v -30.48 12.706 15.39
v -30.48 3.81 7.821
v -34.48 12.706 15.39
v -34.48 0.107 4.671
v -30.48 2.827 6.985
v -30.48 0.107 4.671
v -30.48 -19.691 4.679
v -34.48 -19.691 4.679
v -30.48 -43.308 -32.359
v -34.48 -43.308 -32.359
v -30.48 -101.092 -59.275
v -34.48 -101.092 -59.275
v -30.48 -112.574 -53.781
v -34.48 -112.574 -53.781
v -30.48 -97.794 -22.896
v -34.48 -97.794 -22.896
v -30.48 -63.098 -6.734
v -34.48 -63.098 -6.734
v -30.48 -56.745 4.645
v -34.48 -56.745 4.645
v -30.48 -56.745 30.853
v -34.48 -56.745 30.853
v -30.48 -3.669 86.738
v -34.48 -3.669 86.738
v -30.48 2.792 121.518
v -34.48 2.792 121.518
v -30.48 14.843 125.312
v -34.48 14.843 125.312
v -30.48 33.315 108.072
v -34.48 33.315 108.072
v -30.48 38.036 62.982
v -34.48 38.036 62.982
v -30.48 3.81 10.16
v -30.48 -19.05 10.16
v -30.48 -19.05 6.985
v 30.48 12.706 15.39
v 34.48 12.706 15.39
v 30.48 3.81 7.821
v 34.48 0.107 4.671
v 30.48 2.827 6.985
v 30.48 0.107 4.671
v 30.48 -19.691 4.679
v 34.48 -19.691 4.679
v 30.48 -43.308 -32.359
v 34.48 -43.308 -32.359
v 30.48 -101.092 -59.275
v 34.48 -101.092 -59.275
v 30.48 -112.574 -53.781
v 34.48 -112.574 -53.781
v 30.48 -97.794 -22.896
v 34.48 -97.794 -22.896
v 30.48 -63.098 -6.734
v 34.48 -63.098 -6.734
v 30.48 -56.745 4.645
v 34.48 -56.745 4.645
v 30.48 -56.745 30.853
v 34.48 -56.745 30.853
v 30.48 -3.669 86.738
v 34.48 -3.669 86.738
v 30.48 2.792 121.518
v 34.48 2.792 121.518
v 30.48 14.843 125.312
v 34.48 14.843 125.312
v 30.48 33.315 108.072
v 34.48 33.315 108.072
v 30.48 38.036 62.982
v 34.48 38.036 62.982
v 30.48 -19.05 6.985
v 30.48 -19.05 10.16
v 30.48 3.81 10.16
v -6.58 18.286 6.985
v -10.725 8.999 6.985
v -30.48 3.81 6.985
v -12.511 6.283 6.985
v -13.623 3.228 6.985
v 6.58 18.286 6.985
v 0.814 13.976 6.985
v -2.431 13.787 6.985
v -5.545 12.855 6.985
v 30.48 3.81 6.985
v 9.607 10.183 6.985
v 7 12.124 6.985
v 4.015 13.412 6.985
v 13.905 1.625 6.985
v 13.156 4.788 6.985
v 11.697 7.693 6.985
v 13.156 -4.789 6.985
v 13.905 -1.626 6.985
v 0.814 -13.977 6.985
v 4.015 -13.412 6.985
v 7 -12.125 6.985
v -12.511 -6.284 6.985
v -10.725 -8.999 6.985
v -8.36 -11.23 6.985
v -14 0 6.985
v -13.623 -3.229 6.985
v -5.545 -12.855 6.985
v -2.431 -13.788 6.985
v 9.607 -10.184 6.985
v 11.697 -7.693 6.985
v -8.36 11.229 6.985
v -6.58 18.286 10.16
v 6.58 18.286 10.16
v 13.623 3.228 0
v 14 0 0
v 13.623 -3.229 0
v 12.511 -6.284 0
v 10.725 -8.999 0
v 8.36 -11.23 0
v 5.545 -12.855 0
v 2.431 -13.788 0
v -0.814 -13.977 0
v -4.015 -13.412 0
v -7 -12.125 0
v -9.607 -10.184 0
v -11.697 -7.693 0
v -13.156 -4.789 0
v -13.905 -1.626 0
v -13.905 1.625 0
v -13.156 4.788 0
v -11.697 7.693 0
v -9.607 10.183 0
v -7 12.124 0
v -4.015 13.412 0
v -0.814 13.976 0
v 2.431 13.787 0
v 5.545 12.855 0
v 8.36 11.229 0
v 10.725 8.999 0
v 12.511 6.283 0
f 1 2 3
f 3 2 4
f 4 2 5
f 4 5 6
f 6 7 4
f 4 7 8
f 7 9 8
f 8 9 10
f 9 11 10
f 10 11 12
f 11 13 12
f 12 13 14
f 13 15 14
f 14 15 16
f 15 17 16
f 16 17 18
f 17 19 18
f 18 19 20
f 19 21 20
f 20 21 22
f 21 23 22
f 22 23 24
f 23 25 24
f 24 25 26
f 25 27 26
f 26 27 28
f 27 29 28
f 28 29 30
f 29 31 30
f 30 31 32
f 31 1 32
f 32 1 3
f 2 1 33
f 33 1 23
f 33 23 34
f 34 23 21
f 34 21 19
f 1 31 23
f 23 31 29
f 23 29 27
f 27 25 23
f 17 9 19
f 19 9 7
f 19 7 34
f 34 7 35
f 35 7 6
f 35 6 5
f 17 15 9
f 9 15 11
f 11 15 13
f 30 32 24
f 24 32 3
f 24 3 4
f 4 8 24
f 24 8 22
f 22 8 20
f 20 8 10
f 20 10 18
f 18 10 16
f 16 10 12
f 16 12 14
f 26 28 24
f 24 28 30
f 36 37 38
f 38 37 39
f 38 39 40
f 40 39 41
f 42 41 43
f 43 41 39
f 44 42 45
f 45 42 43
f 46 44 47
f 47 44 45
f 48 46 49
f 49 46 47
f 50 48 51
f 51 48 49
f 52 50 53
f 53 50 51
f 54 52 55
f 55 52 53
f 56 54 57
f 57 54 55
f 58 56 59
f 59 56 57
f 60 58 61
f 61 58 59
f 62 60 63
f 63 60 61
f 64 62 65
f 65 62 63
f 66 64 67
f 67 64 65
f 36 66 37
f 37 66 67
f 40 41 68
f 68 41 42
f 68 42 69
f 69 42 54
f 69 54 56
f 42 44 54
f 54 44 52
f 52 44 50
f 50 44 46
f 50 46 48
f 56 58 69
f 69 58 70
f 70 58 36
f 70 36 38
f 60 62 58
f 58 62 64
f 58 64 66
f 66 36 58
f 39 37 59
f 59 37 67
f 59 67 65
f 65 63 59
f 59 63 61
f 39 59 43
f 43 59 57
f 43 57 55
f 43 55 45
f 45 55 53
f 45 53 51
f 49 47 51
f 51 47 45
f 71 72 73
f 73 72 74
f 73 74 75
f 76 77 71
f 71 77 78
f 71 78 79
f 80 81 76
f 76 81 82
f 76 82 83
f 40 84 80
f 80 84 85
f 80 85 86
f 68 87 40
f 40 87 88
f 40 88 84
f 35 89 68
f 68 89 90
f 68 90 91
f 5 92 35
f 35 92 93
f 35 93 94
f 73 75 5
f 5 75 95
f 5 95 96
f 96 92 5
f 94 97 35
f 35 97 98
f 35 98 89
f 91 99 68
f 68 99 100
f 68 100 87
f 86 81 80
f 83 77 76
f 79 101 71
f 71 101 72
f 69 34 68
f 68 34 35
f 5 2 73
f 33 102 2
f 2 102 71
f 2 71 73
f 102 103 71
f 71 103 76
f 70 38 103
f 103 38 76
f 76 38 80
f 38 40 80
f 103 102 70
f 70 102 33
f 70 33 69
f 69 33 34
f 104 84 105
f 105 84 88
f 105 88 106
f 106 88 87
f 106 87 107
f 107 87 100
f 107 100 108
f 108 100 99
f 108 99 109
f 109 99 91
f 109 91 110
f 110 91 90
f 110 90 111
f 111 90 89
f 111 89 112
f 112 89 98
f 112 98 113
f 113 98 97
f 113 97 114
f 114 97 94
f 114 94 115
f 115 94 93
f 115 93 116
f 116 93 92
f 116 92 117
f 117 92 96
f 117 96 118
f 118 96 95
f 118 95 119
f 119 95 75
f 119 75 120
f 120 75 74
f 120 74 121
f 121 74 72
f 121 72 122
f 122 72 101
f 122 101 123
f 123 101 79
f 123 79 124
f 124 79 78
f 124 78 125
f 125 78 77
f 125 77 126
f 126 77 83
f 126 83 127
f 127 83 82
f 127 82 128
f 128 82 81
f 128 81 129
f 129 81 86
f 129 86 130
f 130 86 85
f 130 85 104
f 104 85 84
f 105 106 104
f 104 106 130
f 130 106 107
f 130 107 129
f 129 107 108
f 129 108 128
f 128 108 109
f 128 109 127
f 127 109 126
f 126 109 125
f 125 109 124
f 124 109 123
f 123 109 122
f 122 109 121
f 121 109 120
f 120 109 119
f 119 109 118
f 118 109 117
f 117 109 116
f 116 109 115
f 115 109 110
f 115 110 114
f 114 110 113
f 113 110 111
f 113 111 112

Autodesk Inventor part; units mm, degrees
sketch "Sketch1" plane through (0, 0, 0) normal (0, 0, 1) x (1, 0, 0)
  circle A0 centre (0, 0) radius 14
  arc A1 (-9.6844, 3.0721) -> (-9.6844, -3.0721) centre (0, 0) ccw construction
  circle A2 centre (0, 0) radius 14
ref_plane "Work Plane1" through (-24.1297, -20.1241, 6.985) normal (0, 0, -1) x (0, 1, 0)
extrude "Extrusion1" add sketch "Sketch1" along normal up to surface (6.985 mm away)
sketch "Sketch2" plane through (0, 0, 6.985) normal (0, 0, 1) x (1, 0, 0)
  line L0 (24.1297, -19.05) -> (-24.1297, -19.05) construction
  line L1 (30.4797, -4.9571) -> (30.4797, -51.5313) construction
  line L2 (-30.4797, -51.5313) -> (-30.4797, -4.9571) construction
  line L3 (-6.5797, 18.2867) -> (-30.4797, 3.81)
  line L4 (6.5797, 18.2867) -> (30.4797, 3.81)
  line L5 (30.4797, 3.81) -> (30.4797, -19.05)
  line L6 (30.4797, -19.05) -> (-30.4797, -19.05)
  line L7 (-30.4797, -19.05) -> (-30.4797, 3.81)
  line L8 (0, 141.501) -> (0, -68.047)
  arc A0 (6.5797, 18.2867) -> (-6.5797, 18.2867) centre (0, 7.4241) ccw construction
  line L9 (6.5797, 18.2867) -> (24.1297, 7.6563) construction
  line L10 (-24.1297, 7.6563) -> (-6.5797, 18.2867) construction
  line L11 (6.5797, 18.2867) -> (-6.5797, 18.2867)
  point P0 (0, 0)
  point P1 (0, -5.2759)
  point P2 (-30.4797, 16.6942)
  point P3 (-5.3196, -19.05)
ref_plane "Work Plane2" through (-24.1297, -20.1241, 10.16) normal (0, 0, 1) x (1, 0, 0)
extrude "Extrusion2" add sketch "Sketch2" along normal up to surface (3.175 mm away)
ref_plane "Work Plane3" through (30.4797, -27.7824, 45.9277) normal (-1, 0, 0) x (0, -0.986, 0.1668)
sketch "Sketch3" plane through (30.4797, -27.7824, 45.9277) normal (-1, 0, 0) x (0, -0.986, 0.1668)
  line L0 (-47.9068, 72.7646) -> (-31.8636, 83.3523) construction
  line L1 (-25.5087, 83.7046) -> (-20.9193, 81.3584) construction
  line L2 (-17.4786, 75.8356) -> (-17.0001, 46.1314) construction
  line L3 (-61.535, 29.6482) -> (-50.5122, 69.1886) construction
  line L4 (-45.3902, -22.2294) -> (-61.4405, 25.9552) construction
  line L5 (-15.9257, 42.7078) -> (21.8176, -13.4116) construction
  line L6 (24.78, -27.1582) -> (21.9473, -43.9057) construction
  line L7 (-18.293, -38.7417) -> (-32.0753, -36.4163) construction
  line L8 (-35.8826, -34.2371) -> (-44.4025, -24.0864) construction
  line L9 (1.5345, -78.0839) -> (-13.5009, -42.5299) construction
  line L10 (52.2811, -114.2632) -> (3.7676, -80.8246) construction
  line L11 (22.2253, -47.0922) -> (25.3496, -55.8788) construction
  line L12 (27.7289, -58.9798) -> (55.688, -78.2509) construction
  line L13 (58.1761, -81.7138) -> (65.2363, -106.3801) construction
  line L14 (60.9015, -114.1914) -> (57.6044, -115.1351) construction
  line L15 (-49.878, 71.4637) -> (-28.7889, 85.3815)
  line L16 (-28.7889, 85.3815) -> (-17.5398, 79.6307)
  line L17 (-17.5398, 79.6307) -> (-16.9699, 44.2605)
  line L18 (-16.9699, 44.2605) -> (26.0426, -19.6937)
  line L19 (26.0426, -19.6937) -> (21.6717, -45.5351)
  line L20 (21.6717, -45.5351) -> (26.0378, -57.8141)
  line L21 (26.0378, -57.8141) -> (57.5529, -79.5363)
  line L22 (57.5529, -79.5363) -> (66.9746, -112.4531)
  line L23 (66.9746, -112.4531) -> (54.7369, -115.9559)
  line L24 (54.7369, -115.9559) -> (2.2516, -79.7797)
  line L25 (2.2516, -79.7797) -> (-14.8578, -39.3213)
  line L26 (-14.8578, -39.3213) -> (-34.38, -36.0274)
  line L27 (-34.38, -36.0274) -> (-45.0145, -23.3573)
  line L28 (-45.0145, -23.3573) -> (-62.0524, 27.7923)
  line L29 (-62.0524, 27.7923) -> (-49.878, 71.4637)
  point P0 (-35.053, -40.651)
  point P1 (21.6748, -26.5696)
  point P2 (-49.9314, -21.2415)
  point P3 (-37.7332, 79.4786)
ref_plane "Work Plane4" through (-33.6547, -38.1116, -58.8269) normal (-1, 0, 0) x (0, 0.0012, 1)
extrude "Extrusion4" add sketch "Sketch3" against normal blind 4
mirror "Mirror1" about plane through (0, 0, 0) normal (1, 0, 0) of "Extrusion4"
properties part number "ShoulderCollision"
